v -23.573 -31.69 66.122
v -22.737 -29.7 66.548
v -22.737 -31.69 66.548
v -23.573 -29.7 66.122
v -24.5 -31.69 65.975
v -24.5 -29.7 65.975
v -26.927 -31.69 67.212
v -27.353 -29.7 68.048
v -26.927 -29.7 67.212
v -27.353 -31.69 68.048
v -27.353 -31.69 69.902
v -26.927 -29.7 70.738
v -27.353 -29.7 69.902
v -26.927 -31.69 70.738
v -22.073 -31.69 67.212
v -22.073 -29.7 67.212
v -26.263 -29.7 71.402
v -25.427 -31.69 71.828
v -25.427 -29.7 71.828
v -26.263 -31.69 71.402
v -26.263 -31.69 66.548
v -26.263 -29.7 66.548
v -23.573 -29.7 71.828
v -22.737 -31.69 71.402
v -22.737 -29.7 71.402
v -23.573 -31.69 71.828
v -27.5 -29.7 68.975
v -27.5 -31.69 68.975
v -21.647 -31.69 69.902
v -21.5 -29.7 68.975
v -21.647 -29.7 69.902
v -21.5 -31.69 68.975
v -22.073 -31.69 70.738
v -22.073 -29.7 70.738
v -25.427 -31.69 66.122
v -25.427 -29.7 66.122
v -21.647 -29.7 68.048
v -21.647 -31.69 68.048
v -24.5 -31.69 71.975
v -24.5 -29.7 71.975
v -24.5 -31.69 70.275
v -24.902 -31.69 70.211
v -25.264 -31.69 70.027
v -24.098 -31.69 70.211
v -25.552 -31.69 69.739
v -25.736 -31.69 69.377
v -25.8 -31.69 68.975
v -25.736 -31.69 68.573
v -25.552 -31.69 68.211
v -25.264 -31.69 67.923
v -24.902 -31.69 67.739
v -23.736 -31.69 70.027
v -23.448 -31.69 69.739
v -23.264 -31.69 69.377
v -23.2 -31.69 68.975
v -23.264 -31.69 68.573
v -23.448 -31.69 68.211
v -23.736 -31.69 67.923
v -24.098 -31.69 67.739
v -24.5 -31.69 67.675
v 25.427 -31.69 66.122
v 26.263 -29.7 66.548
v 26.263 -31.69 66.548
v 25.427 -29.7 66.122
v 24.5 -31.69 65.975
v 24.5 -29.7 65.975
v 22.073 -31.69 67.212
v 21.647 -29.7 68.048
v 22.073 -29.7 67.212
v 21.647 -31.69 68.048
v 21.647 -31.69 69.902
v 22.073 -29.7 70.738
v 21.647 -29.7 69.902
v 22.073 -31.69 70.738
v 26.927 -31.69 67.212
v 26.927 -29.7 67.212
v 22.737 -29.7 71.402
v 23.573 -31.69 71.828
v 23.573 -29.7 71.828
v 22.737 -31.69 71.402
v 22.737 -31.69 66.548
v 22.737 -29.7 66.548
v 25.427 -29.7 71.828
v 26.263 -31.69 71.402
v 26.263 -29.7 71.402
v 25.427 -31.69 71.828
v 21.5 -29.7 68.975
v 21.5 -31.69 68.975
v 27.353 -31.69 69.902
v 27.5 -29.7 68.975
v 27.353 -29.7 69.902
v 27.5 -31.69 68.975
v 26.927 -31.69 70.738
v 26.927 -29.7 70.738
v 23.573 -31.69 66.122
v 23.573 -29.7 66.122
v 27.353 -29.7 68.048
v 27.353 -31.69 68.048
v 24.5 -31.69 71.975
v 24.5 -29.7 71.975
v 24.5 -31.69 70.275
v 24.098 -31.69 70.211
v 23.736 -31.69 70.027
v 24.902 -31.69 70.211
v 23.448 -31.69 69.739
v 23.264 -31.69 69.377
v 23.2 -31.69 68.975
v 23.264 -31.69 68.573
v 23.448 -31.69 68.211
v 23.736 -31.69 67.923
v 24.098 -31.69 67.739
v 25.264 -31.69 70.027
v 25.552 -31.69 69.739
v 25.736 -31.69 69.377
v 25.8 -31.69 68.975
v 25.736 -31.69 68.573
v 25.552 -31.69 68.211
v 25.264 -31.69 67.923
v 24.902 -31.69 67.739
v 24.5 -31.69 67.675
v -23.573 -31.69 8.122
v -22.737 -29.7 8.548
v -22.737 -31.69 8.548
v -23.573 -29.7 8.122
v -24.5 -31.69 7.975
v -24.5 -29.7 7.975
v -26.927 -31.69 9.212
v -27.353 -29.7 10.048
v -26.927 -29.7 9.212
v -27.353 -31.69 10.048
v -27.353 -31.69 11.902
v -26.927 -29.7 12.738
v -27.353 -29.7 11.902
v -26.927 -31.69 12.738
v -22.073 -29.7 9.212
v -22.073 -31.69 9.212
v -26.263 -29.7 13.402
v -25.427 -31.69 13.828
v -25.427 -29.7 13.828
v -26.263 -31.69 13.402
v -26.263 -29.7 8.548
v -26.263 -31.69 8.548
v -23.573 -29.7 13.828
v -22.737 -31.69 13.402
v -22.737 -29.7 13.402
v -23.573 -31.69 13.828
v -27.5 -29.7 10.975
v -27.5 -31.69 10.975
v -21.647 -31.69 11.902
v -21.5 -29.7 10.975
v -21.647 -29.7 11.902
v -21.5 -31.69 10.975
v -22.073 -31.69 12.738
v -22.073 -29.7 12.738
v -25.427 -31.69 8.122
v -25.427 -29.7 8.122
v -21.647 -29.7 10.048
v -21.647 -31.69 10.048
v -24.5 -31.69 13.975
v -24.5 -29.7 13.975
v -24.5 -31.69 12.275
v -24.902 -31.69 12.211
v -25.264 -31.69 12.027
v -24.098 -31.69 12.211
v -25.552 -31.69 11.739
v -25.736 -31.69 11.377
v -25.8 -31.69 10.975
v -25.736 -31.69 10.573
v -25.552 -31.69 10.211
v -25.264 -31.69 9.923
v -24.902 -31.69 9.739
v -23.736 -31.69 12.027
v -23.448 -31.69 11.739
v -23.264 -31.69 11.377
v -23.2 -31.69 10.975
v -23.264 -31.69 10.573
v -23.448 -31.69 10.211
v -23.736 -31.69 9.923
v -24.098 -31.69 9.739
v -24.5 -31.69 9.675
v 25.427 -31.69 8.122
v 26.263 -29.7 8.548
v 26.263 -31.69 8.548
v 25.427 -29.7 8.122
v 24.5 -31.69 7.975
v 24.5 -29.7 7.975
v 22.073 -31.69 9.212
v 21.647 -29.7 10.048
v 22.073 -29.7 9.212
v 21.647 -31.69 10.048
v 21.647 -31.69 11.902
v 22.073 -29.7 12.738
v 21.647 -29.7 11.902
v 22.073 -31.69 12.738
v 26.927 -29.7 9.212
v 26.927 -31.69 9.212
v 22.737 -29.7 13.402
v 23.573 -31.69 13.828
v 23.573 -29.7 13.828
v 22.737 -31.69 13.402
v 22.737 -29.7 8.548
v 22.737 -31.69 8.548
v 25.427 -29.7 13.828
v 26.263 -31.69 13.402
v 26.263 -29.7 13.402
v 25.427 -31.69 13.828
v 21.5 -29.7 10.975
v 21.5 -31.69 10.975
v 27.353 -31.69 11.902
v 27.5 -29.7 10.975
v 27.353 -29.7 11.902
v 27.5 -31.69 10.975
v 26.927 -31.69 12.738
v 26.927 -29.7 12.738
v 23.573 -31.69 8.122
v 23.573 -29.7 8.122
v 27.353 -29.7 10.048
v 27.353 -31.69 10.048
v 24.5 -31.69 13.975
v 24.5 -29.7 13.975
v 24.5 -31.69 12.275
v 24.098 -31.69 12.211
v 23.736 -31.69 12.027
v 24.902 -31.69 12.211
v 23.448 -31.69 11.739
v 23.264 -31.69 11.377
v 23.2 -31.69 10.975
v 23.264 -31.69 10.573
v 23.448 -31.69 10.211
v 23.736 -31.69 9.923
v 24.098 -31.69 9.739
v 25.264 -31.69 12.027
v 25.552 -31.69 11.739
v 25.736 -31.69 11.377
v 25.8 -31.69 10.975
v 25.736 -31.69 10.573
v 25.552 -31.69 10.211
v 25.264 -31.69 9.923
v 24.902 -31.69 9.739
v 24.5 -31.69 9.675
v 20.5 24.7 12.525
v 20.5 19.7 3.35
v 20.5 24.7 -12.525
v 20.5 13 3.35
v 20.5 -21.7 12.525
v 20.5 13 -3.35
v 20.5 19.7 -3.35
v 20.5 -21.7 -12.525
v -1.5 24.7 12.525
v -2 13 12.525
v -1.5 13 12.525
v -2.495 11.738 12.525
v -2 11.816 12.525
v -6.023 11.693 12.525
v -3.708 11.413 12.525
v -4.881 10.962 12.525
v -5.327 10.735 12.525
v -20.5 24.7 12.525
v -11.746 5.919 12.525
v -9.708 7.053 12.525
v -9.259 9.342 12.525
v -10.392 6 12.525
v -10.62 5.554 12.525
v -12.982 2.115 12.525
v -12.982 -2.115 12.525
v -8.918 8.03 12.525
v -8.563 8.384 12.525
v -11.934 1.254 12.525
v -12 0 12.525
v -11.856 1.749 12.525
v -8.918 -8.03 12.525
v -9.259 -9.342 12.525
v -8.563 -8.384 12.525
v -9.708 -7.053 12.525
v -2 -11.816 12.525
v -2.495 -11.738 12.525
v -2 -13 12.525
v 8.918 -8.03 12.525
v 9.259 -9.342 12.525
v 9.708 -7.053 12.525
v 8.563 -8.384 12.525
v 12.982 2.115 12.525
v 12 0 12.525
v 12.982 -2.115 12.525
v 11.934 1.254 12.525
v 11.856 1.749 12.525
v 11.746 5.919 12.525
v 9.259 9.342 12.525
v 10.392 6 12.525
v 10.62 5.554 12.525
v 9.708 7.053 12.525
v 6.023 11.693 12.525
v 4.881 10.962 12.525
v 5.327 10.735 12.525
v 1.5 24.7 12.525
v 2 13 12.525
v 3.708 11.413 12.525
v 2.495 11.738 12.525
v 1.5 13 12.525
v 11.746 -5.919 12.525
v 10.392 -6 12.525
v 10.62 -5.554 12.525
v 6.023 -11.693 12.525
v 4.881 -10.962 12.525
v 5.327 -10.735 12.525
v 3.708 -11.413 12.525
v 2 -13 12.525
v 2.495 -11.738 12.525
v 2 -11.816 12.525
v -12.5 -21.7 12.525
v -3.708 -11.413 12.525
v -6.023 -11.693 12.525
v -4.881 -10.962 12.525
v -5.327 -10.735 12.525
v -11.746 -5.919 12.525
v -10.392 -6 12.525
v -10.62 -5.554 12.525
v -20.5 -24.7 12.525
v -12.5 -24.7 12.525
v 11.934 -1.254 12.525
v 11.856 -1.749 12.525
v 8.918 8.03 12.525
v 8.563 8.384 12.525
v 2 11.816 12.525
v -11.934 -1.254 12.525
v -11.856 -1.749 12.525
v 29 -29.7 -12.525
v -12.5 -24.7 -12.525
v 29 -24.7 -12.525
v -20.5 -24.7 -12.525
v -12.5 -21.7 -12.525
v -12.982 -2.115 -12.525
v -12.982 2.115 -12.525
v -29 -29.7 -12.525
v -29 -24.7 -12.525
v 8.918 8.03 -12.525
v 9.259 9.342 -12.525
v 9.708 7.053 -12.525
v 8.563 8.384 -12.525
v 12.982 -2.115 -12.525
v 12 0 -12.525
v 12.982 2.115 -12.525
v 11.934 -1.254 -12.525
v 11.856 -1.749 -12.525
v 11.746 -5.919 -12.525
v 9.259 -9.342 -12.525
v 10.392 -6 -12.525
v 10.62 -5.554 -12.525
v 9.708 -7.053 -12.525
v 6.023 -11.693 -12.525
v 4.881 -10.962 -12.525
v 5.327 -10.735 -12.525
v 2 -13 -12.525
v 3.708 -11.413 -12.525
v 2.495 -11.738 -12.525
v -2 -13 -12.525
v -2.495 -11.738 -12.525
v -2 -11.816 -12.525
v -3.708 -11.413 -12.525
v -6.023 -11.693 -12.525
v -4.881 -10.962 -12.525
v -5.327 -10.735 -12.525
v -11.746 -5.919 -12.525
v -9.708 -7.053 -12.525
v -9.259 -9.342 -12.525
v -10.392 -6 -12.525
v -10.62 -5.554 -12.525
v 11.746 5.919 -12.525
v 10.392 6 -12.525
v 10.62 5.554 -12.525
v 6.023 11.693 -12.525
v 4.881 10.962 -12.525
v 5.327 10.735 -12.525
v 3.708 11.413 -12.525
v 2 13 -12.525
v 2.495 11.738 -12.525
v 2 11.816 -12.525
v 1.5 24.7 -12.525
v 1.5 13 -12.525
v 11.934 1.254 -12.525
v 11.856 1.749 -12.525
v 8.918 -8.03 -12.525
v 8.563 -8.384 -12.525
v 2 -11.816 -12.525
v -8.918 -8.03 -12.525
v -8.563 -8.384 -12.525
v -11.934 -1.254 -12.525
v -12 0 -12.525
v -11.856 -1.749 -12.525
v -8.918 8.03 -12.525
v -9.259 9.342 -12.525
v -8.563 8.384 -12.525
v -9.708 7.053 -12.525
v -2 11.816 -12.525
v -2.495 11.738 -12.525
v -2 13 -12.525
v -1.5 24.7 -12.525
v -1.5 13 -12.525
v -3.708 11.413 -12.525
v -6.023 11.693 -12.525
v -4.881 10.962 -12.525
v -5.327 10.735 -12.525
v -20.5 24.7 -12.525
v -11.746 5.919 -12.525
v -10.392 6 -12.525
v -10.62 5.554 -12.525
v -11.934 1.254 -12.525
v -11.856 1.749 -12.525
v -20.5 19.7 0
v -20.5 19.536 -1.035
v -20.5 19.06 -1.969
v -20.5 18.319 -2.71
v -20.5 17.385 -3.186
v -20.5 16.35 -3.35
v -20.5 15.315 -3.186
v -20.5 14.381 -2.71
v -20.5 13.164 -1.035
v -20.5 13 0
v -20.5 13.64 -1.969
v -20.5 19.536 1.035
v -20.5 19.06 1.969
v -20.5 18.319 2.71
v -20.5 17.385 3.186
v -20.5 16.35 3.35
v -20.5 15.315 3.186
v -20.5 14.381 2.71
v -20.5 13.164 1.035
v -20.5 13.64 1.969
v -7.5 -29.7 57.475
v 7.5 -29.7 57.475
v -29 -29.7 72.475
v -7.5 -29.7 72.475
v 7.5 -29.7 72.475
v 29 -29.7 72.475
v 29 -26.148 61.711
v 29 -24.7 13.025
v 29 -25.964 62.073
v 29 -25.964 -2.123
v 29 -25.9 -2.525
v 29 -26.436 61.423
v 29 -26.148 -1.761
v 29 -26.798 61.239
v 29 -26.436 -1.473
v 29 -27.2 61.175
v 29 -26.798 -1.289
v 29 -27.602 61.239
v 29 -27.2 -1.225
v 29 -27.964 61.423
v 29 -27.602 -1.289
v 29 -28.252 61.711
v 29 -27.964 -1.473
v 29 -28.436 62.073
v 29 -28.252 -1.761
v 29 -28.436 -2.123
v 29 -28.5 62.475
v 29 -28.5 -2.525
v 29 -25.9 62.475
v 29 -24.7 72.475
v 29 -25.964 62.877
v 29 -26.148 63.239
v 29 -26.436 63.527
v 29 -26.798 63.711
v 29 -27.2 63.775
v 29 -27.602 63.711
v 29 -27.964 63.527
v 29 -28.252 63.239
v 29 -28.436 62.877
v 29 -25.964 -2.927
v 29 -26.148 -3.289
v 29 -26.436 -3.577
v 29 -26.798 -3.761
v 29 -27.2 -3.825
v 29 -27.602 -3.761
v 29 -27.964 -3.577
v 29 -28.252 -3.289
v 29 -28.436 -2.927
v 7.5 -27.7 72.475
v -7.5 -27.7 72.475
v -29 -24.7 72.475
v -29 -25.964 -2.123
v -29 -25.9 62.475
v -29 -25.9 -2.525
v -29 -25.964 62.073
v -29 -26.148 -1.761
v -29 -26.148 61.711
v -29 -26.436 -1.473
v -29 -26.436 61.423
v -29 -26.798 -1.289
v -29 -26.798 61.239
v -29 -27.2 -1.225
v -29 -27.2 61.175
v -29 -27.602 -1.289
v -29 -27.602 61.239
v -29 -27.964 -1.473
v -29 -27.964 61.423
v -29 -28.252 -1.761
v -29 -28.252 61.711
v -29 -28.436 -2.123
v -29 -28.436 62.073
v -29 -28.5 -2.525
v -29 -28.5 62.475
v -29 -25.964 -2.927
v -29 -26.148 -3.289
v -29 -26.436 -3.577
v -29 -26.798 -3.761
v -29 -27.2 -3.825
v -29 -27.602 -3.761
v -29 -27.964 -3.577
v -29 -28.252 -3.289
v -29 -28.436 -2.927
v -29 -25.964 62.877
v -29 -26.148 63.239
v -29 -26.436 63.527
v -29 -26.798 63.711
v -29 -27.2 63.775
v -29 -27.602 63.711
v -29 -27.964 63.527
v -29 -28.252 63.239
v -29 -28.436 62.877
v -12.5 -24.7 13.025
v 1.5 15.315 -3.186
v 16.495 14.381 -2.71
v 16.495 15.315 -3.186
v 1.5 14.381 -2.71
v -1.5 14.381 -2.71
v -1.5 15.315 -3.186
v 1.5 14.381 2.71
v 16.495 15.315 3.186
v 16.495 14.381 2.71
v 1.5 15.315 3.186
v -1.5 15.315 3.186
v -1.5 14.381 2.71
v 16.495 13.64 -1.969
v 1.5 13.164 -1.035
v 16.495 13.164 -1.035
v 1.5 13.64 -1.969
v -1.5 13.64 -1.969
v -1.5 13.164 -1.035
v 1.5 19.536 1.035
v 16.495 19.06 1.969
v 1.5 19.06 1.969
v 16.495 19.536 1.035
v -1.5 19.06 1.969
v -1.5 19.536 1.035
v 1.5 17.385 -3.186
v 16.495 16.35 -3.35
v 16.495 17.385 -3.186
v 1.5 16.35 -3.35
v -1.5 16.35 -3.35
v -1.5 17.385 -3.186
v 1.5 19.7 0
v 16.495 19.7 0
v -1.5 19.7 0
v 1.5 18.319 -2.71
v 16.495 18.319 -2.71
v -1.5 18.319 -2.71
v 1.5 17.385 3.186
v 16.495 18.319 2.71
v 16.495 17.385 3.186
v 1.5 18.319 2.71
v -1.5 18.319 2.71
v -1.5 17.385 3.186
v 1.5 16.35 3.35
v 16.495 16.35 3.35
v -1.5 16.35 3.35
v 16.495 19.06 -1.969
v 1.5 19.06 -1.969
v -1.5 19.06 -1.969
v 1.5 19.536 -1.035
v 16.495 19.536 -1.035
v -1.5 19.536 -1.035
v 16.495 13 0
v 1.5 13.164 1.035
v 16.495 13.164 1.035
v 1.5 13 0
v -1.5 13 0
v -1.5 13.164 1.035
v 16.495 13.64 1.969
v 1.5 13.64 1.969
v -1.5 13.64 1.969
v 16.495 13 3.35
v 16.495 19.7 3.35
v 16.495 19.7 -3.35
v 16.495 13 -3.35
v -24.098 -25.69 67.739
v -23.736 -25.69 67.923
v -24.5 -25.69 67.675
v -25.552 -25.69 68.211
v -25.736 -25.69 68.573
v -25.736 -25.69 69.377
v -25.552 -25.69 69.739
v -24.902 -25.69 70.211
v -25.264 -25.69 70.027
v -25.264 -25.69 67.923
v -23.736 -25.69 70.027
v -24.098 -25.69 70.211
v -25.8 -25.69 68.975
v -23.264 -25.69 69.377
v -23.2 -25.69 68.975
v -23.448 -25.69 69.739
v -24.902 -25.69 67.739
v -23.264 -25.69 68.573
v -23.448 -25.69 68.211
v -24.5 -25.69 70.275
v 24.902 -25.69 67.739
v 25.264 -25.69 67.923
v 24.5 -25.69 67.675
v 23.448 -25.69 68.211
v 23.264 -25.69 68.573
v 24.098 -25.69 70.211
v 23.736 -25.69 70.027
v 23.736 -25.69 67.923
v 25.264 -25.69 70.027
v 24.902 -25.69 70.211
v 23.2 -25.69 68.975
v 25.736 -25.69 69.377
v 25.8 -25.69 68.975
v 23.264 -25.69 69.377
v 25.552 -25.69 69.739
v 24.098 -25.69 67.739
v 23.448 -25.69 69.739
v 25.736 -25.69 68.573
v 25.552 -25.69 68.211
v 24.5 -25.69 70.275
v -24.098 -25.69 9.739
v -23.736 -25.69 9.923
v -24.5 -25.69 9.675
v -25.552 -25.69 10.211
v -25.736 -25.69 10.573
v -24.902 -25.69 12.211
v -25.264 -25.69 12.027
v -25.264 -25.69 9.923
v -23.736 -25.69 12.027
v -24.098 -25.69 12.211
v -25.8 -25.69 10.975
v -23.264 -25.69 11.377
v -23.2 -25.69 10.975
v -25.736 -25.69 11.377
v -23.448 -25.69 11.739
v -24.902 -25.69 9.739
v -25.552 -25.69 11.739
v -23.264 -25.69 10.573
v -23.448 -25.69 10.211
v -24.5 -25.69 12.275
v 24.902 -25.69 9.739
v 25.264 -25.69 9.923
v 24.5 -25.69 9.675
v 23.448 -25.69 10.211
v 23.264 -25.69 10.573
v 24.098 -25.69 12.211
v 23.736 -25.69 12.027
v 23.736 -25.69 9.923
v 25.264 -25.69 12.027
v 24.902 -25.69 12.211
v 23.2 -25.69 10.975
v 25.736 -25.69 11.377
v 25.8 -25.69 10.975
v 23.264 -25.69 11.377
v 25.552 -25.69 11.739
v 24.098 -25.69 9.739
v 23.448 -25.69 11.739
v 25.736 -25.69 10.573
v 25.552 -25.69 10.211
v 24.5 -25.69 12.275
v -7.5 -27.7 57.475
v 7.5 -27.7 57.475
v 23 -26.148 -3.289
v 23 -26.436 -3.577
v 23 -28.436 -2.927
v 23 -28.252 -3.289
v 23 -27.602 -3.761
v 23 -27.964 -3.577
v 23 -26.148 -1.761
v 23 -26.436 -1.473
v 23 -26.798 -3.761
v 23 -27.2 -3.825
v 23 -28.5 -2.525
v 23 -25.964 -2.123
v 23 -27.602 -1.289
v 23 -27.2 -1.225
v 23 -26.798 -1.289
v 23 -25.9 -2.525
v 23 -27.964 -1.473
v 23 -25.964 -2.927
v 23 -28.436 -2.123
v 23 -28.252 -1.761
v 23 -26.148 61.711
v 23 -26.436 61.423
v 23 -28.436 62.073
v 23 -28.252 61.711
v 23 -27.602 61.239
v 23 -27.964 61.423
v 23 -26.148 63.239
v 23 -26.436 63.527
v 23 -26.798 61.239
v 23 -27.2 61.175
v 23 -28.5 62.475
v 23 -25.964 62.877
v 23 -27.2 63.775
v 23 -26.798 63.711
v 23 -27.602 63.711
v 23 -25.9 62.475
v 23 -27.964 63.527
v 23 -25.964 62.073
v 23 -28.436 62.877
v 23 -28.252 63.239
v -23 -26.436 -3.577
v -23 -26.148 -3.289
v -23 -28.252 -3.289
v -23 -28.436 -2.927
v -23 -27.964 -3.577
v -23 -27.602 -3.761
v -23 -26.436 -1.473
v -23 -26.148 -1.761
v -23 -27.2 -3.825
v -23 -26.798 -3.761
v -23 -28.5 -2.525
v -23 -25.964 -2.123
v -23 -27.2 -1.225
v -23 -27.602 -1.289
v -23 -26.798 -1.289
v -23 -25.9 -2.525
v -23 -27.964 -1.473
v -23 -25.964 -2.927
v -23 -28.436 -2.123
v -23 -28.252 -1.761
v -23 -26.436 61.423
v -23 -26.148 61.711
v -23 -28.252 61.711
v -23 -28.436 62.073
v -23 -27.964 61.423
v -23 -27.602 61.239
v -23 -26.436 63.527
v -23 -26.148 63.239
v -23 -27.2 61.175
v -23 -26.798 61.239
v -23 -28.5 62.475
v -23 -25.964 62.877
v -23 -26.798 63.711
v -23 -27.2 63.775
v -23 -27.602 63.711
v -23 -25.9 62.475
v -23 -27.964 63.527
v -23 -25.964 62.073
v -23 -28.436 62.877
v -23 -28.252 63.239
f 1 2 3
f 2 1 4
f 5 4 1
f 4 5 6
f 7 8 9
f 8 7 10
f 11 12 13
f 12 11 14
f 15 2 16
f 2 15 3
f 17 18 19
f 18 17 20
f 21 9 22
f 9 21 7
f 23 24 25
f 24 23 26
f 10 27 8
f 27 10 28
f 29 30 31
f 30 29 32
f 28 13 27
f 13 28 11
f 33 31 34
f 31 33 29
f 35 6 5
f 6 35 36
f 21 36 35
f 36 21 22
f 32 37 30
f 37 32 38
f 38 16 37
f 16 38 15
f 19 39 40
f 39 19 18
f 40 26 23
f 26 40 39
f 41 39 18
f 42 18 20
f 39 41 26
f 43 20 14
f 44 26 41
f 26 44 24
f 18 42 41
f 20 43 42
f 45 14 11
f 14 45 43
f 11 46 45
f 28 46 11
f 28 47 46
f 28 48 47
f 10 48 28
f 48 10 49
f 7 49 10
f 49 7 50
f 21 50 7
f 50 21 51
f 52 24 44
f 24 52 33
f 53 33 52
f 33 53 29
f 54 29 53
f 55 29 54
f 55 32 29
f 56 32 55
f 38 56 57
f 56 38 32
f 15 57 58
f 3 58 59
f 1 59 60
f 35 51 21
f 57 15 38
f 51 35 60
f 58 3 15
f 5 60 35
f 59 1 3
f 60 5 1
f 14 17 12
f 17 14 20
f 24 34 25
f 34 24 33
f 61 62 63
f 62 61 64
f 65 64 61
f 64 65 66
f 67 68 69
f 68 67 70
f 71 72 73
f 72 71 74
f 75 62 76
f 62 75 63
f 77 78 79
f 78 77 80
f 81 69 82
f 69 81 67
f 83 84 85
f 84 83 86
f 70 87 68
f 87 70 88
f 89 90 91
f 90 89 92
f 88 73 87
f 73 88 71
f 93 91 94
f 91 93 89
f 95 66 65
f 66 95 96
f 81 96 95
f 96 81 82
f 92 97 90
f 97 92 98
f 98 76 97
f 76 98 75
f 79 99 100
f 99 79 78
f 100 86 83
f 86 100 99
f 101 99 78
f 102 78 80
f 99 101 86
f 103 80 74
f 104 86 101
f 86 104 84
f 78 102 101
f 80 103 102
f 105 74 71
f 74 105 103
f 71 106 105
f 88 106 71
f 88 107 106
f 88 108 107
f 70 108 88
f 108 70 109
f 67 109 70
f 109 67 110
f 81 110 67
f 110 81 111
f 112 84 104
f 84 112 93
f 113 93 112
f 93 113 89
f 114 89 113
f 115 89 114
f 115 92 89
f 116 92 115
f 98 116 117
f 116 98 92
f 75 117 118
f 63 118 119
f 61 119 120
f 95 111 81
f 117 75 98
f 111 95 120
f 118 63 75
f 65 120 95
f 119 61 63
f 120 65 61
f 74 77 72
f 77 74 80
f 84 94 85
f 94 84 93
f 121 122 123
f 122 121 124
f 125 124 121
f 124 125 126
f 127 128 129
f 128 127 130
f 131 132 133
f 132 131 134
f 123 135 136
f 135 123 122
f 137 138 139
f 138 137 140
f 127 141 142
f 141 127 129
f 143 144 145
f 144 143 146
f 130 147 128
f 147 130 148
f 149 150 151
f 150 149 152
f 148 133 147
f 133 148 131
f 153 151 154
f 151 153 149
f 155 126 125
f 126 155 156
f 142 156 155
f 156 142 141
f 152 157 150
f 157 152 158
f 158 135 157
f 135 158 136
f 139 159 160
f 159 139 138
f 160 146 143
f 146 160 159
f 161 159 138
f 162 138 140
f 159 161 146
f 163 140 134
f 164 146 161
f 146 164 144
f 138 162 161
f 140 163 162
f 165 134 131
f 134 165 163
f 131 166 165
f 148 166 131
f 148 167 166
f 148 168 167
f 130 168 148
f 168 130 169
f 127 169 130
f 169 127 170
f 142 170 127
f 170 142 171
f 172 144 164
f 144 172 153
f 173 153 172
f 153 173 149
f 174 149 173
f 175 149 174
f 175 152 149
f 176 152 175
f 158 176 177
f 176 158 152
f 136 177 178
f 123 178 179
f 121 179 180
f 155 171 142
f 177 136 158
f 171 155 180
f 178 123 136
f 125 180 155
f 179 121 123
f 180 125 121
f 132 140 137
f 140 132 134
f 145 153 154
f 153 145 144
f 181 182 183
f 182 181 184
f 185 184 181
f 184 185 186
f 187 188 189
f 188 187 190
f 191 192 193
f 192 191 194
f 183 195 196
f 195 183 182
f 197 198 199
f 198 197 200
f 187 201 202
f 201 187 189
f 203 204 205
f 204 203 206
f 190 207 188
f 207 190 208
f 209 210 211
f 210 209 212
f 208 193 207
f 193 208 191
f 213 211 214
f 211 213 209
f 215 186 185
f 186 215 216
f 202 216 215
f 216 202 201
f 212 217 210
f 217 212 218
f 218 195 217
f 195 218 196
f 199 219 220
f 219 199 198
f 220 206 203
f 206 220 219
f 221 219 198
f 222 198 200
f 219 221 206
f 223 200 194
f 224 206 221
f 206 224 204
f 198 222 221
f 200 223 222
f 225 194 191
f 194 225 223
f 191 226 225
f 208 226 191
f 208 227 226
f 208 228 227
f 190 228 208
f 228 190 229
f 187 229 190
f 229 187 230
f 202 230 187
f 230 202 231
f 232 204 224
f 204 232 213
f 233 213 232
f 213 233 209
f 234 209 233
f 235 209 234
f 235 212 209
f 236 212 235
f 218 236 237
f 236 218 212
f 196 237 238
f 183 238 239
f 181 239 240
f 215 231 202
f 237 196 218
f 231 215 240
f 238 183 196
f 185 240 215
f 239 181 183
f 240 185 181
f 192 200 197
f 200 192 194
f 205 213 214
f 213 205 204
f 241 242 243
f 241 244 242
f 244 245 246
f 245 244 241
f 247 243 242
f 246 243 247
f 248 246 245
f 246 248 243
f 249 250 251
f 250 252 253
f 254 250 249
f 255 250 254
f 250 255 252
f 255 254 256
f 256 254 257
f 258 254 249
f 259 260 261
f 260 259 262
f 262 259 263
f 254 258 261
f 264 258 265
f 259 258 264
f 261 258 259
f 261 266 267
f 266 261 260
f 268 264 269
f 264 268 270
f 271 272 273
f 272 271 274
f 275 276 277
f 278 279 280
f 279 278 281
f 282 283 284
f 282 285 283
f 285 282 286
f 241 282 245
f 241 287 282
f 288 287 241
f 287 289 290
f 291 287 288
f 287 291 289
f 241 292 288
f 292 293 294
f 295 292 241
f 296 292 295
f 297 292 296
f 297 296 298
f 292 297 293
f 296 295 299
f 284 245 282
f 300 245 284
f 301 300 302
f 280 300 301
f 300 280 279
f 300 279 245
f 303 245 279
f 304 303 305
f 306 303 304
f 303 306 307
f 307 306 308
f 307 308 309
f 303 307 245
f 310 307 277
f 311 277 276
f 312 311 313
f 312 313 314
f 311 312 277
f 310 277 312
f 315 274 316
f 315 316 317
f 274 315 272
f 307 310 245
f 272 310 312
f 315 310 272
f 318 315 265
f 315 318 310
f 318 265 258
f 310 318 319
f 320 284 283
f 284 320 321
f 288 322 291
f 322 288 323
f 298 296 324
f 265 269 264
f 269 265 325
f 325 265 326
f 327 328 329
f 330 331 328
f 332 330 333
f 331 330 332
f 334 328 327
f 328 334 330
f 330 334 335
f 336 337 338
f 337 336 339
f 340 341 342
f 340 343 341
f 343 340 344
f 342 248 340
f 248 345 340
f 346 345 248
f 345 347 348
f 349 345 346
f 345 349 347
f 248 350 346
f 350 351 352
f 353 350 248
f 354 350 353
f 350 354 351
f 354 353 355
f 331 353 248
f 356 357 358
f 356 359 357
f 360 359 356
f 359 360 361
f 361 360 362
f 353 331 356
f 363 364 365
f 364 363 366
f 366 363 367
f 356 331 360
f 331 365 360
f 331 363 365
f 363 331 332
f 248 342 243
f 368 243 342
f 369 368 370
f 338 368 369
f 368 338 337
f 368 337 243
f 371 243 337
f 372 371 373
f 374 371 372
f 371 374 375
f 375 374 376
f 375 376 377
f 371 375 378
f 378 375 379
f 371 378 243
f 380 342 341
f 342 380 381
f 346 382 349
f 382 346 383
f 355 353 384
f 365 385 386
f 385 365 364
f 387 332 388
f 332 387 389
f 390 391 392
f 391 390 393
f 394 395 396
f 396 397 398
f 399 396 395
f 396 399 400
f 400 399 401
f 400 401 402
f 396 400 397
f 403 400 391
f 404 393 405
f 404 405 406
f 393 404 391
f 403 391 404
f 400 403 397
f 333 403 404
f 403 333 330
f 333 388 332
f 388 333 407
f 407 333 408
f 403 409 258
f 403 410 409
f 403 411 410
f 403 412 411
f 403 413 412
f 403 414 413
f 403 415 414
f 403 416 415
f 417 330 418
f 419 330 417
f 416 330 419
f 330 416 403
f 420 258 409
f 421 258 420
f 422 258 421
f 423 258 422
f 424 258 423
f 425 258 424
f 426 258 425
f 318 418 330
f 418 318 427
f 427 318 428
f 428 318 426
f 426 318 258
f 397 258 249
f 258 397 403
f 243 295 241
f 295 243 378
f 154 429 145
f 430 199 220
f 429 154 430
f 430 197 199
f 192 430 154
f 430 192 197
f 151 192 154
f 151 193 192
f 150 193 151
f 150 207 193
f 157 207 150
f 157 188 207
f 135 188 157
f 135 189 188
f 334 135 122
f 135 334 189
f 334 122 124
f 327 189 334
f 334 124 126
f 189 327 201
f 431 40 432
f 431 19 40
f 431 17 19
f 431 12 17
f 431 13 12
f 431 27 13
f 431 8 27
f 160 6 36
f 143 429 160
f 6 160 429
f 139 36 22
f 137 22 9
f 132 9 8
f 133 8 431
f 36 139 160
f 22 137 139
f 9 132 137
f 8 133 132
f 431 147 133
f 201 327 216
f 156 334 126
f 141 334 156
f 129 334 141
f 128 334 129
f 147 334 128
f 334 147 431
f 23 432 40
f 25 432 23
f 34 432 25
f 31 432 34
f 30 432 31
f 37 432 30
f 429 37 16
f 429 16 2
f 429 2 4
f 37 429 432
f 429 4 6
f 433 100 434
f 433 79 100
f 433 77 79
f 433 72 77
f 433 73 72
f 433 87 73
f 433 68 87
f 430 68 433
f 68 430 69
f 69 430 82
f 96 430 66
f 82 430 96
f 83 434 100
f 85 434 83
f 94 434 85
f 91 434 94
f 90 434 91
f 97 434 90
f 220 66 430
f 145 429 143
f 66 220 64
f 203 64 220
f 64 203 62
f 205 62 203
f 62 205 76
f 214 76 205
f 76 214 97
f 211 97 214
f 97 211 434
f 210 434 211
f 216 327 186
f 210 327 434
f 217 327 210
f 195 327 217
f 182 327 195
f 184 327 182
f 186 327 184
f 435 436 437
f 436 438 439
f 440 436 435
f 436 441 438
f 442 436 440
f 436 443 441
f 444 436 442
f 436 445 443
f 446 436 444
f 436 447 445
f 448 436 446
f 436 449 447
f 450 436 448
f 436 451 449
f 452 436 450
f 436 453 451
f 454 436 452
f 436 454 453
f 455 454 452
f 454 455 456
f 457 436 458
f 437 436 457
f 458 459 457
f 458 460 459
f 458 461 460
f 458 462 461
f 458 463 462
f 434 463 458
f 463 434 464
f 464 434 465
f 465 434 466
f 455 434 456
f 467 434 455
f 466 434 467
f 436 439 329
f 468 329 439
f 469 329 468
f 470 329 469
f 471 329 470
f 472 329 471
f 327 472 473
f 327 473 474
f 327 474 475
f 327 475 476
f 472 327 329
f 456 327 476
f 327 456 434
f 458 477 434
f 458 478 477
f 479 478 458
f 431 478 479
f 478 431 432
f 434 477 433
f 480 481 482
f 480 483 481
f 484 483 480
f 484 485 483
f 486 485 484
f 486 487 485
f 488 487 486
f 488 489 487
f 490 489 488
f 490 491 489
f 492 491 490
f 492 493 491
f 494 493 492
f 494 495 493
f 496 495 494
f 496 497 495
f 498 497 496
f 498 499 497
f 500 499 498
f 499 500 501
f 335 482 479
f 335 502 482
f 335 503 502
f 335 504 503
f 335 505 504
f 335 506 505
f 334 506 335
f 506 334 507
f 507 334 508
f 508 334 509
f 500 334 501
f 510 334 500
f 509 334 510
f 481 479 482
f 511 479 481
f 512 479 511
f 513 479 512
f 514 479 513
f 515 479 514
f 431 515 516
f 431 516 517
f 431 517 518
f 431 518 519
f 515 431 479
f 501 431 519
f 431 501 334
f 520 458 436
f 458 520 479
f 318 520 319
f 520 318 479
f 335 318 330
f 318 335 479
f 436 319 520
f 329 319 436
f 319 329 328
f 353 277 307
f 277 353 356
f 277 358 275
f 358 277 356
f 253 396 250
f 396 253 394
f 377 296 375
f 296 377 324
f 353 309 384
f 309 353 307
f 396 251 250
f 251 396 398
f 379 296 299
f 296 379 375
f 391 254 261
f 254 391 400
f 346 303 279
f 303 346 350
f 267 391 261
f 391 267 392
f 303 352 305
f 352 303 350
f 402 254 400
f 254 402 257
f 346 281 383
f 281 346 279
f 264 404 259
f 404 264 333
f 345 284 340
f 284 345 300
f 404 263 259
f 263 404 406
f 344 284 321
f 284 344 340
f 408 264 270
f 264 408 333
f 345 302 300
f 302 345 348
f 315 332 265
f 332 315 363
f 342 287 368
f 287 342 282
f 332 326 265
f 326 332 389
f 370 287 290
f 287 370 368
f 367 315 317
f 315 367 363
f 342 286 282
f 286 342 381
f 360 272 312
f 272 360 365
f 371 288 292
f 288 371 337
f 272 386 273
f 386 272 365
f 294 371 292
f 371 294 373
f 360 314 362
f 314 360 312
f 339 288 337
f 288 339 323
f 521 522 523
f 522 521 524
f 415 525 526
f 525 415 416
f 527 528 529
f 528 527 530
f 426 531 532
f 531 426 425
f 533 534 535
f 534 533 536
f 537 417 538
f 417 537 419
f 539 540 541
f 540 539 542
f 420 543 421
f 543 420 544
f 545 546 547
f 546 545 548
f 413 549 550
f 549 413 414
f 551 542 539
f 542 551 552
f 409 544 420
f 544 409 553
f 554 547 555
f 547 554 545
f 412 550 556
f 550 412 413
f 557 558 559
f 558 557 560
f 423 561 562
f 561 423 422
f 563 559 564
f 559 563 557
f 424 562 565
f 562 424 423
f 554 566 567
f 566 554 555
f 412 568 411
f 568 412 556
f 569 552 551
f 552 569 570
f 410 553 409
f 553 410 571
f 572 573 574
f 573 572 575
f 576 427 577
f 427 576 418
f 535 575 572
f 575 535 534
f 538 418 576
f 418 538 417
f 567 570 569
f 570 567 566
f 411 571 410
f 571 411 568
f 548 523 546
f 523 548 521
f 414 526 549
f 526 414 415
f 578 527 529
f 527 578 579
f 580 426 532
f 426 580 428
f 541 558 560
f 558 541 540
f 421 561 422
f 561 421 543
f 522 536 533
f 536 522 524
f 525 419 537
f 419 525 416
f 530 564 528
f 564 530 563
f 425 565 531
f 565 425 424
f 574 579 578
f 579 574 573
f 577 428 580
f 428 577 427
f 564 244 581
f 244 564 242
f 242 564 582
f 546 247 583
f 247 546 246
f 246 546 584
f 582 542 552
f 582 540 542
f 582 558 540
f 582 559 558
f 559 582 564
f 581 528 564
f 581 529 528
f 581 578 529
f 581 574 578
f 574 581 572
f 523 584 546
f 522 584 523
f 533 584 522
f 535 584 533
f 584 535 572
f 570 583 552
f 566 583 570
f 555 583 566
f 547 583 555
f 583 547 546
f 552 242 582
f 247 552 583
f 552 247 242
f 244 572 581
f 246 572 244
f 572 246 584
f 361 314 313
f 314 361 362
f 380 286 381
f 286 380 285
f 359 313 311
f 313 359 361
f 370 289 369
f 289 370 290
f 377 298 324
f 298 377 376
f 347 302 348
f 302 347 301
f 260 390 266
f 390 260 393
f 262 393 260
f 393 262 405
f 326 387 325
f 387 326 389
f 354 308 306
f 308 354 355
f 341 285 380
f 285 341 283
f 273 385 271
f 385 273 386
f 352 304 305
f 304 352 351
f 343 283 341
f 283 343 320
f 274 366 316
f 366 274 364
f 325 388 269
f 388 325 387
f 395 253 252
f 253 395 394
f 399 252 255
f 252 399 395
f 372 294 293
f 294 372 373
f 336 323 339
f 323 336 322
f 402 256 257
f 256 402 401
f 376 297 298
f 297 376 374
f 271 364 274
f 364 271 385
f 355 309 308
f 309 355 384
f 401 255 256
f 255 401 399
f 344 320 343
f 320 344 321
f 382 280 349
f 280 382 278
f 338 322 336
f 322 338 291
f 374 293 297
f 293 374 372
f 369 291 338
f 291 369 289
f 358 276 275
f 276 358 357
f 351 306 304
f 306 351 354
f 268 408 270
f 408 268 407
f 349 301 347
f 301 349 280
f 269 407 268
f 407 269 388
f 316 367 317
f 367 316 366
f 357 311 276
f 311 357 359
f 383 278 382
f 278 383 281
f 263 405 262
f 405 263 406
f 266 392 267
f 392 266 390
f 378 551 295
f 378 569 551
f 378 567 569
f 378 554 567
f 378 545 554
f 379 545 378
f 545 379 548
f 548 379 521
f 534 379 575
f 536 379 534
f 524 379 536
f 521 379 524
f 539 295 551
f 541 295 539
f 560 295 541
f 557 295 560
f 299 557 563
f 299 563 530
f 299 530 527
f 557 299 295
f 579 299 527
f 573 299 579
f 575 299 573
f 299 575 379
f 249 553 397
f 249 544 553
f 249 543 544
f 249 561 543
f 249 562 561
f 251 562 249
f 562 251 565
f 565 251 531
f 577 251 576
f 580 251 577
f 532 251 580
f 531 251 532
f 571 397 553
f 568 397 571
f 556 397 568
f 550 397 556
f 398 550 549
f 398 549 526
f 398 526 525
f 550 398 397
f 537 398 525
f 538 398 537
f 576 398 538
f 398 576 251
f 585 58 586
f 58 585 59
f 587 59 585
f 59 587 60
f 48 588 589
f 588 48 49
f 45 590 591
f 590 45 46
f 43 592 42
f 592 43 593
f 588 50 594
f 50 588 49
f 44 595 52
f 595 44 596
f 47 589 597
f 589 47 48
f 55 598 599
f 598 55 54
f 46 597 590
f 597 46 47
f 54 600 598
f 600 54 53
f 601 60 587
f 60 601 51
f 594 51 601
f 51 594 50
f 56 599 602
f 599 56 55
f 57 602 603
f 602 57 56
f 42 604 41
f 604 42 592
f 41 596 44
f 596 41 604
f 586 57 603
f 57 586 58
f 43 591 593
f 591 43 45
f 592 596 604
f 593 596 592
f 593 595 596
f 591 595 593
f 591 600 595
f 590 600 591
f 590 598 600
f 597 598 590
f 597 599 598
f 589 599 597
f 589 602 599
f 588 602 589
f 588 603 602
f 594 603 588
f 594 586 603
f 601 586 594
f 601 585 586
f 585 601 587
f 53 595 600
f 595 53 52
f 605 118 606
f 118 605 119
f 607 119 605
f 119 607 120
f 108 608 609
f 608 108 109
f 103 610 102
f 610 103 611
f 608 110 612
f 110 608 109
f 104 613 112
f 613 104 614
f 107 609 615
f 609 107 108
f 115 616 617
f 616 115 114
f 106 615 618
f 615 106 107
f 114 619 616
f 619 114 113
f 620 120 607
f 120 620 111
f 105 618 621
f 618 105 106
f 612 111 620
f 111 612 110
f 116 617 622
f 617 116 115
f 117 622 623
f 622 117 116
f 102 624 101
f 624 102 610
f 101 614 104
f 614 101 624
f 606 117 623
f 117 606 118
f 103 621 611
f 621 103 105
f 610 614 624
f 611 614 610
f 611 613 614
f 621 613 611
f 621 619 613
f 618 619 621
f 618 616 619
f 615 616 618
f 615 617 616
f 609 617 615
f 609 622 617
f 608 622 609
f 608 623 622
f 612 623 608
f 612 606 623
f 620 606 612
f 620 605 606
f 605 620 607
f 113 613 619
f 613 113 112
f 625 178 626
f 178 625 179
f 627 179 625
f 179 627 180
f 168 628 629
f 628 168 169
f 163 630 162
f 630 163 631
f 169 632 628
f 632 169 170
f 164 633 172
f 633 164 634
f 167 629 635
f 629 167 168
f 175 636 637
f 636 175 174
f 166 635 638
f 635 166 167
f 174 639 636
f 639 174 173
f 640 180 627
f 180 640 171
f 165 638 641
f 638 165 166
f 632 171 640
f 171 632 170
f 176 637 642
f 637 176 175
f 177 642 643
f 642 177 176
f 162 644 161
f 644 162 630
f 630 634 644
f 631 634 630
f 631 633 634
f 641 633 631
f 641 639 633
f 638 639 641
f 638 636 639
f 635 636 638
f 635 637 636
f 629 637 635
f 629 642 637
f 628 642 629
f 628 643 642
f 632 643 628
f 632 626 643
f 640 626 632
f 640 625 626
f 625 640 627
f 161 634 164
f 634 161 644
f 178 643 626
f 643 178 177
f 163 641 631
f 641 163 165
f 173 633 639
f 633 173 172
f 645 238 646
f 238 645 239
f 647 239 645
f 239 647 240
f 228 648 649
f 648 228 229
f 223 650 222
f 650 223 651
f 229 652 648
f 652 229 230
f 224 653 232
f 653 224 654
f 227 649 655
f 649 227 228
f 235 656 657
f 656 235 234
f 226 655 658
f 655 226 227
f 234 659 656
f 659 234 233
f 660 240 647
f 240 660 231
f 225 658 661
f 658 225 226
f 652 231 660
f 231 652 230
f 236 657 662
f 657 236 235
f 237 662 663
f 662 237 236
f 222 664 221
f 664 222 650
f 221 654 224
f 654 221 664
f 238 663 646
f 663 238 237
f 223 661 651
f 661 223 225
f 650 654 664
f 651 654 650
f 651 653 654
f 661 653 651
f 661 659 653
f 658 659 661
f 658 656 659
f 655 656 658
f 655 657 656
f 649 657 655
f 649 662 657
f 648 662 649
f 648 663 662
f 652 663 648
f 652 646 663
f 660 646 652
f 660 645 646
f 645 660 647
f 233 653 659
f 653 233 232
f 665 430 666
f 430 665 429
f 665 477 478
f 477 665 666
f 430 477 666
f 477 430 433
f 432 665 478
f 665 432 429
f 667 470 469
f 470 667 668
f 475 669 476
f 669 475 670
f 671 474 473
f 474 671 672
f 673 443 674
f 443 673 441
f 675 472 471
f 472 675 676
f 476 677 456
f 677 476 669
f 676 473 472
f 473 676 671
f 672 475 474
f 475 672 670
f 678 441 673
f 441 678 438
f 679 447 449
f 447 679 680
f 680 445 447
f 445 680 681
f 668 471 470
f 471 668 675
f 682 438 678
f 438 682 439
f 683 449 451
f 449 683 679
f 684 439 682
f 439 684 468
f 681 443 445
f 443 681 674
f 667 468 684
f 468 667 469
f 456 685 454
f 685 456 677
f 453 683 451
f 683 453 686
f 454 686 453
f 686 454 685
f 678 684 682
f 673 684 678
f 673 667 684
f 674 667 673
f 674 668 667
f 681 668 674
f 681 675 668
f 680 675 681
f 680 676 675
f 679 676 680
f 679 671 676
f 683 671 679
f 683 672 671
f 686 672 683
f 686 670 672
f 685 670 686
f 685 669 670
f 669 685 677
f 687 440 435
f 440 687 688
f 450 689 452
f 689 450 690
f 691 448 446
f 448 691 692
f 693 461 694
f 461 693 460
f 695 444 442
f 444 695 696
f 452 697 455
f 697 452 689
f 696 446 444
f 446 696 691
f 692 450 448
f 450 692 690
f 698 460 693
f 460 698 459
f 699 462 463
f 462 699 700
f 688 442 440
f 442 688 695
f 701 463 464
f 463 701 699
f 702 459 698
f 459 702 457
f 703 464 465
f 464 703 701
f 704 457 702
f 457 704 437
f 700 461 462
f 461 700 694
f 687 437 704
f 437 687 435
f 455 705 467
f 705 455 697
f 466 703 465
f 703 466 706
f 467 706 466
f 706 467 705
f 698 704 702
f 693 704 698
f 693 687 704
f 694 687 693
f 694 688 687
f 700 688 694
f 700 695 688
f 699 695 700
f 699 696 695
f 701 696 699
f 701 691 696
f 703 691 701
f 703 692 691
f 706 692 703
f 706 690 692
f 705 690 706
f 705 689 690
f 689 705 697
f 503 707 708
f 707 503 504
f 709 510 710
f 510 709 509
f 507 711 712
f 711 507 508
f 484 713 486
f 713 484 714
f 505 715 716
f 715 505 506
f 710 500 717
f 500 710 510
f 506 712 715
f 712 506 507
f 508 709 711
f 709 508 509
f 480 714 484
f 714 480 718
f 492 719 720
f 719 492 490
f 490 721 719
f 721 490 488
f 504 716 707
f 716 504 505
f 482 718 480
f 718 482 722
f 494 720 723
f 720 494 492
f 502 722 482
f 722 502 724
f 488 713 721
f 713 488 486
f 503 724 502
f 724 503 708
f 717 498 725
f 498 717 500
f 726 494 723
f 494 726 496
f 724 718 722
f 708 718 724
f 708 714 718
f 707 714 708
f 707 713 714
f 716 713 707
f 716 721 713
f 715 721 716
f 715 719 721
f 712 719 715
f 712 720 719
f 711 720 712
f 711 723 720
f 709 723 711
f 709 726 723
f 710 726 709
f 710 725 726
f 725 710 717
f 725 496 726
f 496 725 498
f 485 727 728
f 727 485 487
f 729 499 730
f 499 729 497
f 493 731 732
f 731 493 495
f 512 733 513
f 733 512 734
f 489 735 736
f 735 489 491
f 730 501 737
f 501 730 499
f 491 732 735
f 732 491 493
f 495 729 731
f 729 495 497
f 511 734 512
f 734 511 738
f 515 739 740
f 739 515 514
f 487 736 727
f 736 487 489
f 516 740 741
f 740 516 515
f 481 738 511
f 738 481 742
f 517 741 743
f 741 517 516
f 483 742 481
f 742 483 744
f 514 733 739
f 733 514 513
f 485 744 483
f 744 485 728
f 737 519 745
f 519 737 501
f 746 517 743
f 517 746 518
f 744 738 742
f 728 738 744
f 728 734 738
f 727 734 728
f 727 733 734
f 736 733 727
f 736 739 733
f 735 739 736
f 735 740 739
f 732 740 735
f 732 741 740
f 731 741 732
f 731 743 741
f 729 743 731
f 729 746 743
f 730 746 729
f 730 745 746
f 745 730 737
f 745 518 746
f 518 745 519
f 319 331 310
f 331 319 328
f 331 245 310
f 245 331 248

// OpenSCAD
// file: lib/boltDim.scad
/*
    Mounting Blocks to build a camera boom.

    Copyright (C) 2021 John Winans

    This program is free software: you can redistribute it and/or modify
    it under the terms of the GNU General Public License as published by
    the Free Software Foundation, either version 3 of the License, or
    (at your option) any later version.

    This program is distributed in the hope that it will be useful,
    but WITHOUT ANY WARRANTY; without even the implied warranty of
    MERCHANTABILITY or FITNESS FOR A PARTICULAR PURPOSE.  See the
    GNU General Public License for more details.

    You should have received a copy of the GNU General Public License
    along with this program.  If not, see <https://www.gnu.org/licenses/>.
*/

bolt_dim_M2_dia = 3;		// for M2 bolt loose fit
bolt_dim_M2_tap = 2.4;		// for self-tapping a M2 bolt
bolt_dim_M2_head_dia = 4.6;// diameter for a crown countersink

bolt_dim_M25_dia = 3.5;		// for M2.5 bolt loose fit
bolt_dim_M25_tap = 2.6;		// for self-tapping a M2.5 bolt
bolt_dim_M25_head_dia = 6;	// diameter for a crown countersink

bolt_dim_M3_dia = 3.6;		// M3 bolt loose fit
bolt_dim_M3_tap = 3.1;		// for self-tapping M3 bolt
bolt_dim_M3_head_dia = 6.5;	// diameter for a crown countersink

bolt_dim_M5_dia = 5.4;		// for M5 bolt loose fit
bolt_dim_M5_tap = 5;		// for self-tapping a M5 bolt
bolt_dim_M5_head_dia = 9;	// diameter for a crown countersink

nut_dim_M5_DIN985 = 9.6;	// diameter for a hex hole to retain am M5 myloc


bolt_dim_quarter_dia = 6.7;	// for 1/4" bolt loose fit
bolt_dim_quarter_carriage_neck_depth = 4;	// neck length
// file: lib/pimount.scad
/*
    Mounting Blocks to build a camera boom.

    Copyright (C) 2021 John Winans

    This program is free software: you can redistribute it and/or modify
    it under the terms of the GNU General Public License as published by
    the Free Software Foundation, either version 3 of the License, or
    (at your option) any later version.

    This program is distributed in the hope that it will be useful,
    but WITHOUT ANY WARRANTY; without even the implied warranty of
    MERCHANTABILITY or FITNESS FOR A PARTICULAR PURPOSE.  See the
    GNU General Public License for more details.

    You should have received a copy of the GNU General Public License
    along with this program.  If not, see <https://www.gnu.org/licenses/>.
*/


include <boltDim.scad>

//pi3_example();

piDefaultStandoffHeight=5;

piDimX=85;
piDimY=56;
piDimCornerRad=3;


// 49x58 square on center
piHoleCenters=[
	[ 3.5, 3.5, 0 ],
	[ 3.5, 3.5+49, 0 ],
	[ 3.5+58, 3.5, 0 ],
	[ 3.5+58, 3.5+49, 0 ]
];


v1_hole_centers=[
	[ -24/2+2, 25/2-2, 0 ],
	[ -24/2+2, -25/2+2, 0 ],
	[ -24/2+2+12.5, 25/2-2, 0 ],
	[ -24/2+2+12.5, -25/2+2, 0 ],
];


hq_hole_centers=[
	[ -38/2+4, 38/2-4, 0 ],
	[ -38/2+4, -38/2+4, 0 ],
	[ 38/2-4, 38/2-4, 0 ],
	[ 38/2-4, -38/2+4, 0 ],
];


/**
* The material to add in order to mount a Raspberry PI3. 
* For example, things like standoffs.
******************************************************************/
module pi3_pos(standoffHeight=piDefaultStandoffHeight, reference=true)
{
    translate([0, 0, -(standoffHeight+.01)])
        for ( pos = piHoleCenters )
            translate(pos) cylinder(d=6, h=standoffHeight, $fn=20);
  
    if(reference)  
    {
        // reference PCB shape (shown but not part of the object)
        %translate([piDimCornerRad, piDimCornerRad, 0]) minkowski()
        {
            cube([piDimX-2*piDimCornerRad, piDimY-2*piDimCornerRad, 1.4-.02]);
            cylinder(r=piDimCornerRad, h=.01);
        }
    }
}


/**
******************************************************************/
module pi_camera_v1_neg(
	standoffHeight=piDefaultStandoffHeight, 
	mountHoleDepth=9, 
	threadin=true)
{
	boltd=threadin ? bolt_dim_M2_tap : bolt_dim_M2_dia;
	for (pos = v1_hole_centers)
		translate(pos) translate([0,0,standoffHeight-mountHoleDepth]) cylinder(d=boltd, h=mountHoleDepth+.01, $fn=20);
}

/**
******************************************************************/
module pi_camera_v1_pos(
    standoffHeight=piDefaultStandoffHeight)
{
	for (pos = v1_hole_centers)
		translate(pos) 
			cylinder(d=3.5, h=standoffHeight, $fn=30);
}

/**
******************************************************************/
module pi_camera_hq_neg(
	standoffHeight=piDefaultStandoffHeight, 
	mountHoleDepth=9, 
	threadin=true)
{
	boltd=threadin ? bolt_dim_M25_tap : bolt_dim_M25_dia;
	for (pos = hq_hole_centers)
		translate(pos) translate([0,0,standoffHeight-mountHoleDepth]) cylinder(d=boltd, h=mountHoleDepth+.01, $fn=20);
}

/**
******************************************************************/
module pi_camera_hq_pos(
    standoffHeight=piDefaultStandoffHeight)
{
	for (pos = hq_hole_centers)
		translate(pos) 
			translate([0,0,standoffHeight/2]) cylinder(d=5.5, h=standoffHeight, center=true, $fn=30);
}


/**
* The material to subtract to mount a Raspberry PI3.
* For example, things like the bolt holes within standoffs,
* conectors,...
*
* @param threadin True=make standoff holes to thread 2.5mm 
*   into the material itself, False=proivide space for bolt & 
*   countersink the head
******************************************************************/
module pi3_neg(standoffHeight=piDefaultStandoffHeight, mountHoleDepth=4.5, threadin=true)
{
    boltd=threadin ? bolt_dim_M25_tap : bolt_dim_M25_dia;
    
    // hollow out the standoffs
    translate([0, 0, -mountHoleDepth-.01])
        for (pos = piHoleCenters)
        {
            translate(pos) cylinder(d=boltd, h=mountHoleDepth+.02, $fn=20); // bolt
            if (!threadin)
                translate(pos) cylinder(d=5, h=7, $fn=20); // countersink
        }
        
    // The Ethernet
    translate([85, 11, 1.4+14.5/2]) cube([20, 17, 14.5], center=true);

    // The USB ports
    translate([85, 29, 1.4+16.5/2]) cube([20, 16, 16.5], center=true);
    translate([85, 47, 1.4+16.5/2]) cube([20, 16, 16.5], center=true);

	//15x6 on center
    // an access slot for the SD card
    translate([0, 28,-1]) cube([30, 15, 6], center=true);
}






// a test module to demonstrate how to use this
module pi3_example()
{
    difference()
    {
        pi3_pos();		// the mounting material
        pi3_neg();		// ...less the holes for bolts, connectors etc
    }
}
// file: lib/clamp.scad
/*
	Mounting Blocks to build a camera boom.

    Copyright (C) 2021 John Winans

    This program is free software: you can redistribute it and/or modify
    it under the terms of the GNU General Public License as published by
    the Free Software Foundation, either version 3 of the License, or
    (at your option) any later version.

    This program is distributed in the hope that it will be useful,
    but WITHOUT ANY WARRANTY; without even the implied warranty of
    MERCHANTABILITY or FITNESS FOR A PARTICULAR PURPOSE.  See the
    GNU General Public License for more details.

    You should have received a copy of the GNU General Public License
    along with this program.  If not, see <https://www.gnu.org/licenses/>.
*/

include <boltDim.scad>


//********************************************************
// A pipe & bolt holes for a pipe clamp.
//********************************************************
module clamp_neg(
    relief_slot,        // how far from the edge of the pipe should the relief slot go?
    pipe_length, 
    pipe_diameter,
    clamp_bolt_length,    // used to determine the length of the clamp bolt
    clamp_bolt_dia,
    clamp_bolt_neck_depth,
    clamp_bolt_clearance,
    rib=false, 
    stripe=true
    )
{
    clamp_bolt_offset = pipe_diameter/2+clamp_bolt_dia/2+clamp_bolt_clearance;

    cz = pipe_length+.01;
    
    // the pipe hole
    cylinder(d=pipe_diameter, h=cz+.01, center=true, $fn=60);
    
    if (rib)
    {
        // rib it
        rh=2;
        rs=4;
        for (z=[-cz/2+rh*.5+1 : rs : cz/2]) // XXX fudge start to center it
            translate([0,0,z])
                cylinder(d=pipe_diameter+1, h=rh, center=true, $fn=60);
    }
    
    if (stripe)
    {
        // stripe it
        //rh=1.5;
        rh=4;
        rt=360/10;
        for (theta=[90:rt:2690])
            rotate([0,0,theta]) cube([pipe_diameter+2, rh, cz+.01], center=true);
    }
    
    // releif notch
    translate([0,pipe_diameter/2+relief_slot/2,0]) cube([3, relief_slot+.01, cz+.01], center=true);
    
    // clamp bolt
    translate([0,clamp_bolt_offset,0])
    {
        rotate([0,90,0]) 
        cylinder(d=clamp_bolt_dia, h=clamp_bolt_length+.01, $fn=20, center=true);
    
        // square for carriage bolt head
        translate([clamp_bolt_length/2-clamp_bolt_neck_depth/2,0,0])
            cube([clamp_bolt_neck_depth+.01, clamp_bolt_dia,clamp_bolt_dia], center=true);
    }
}
// main file
/*
    Mounting Blocks to build a camera boom.

    Copyright (C) 2021 John Winans

    This program is free software: you can redistribute it and/or modify
    it under the terms of the GNU General Public License as published by
    the Free Software Foundation, either version 3 of the License, or
    (at your option) any later version.

    This program is distributed in the hope that it will be useful,
    but WITHOUT ANY WARRANTY; without even the implied warranty of
    MERCHANTABILITY or FITNESS FOR A PARTICULAR PURPOSE.  See the
    GNU General Public License for more details.

    You should have received a copy of the GNU General Public License
    along with this program.  If not, see <https://www.gnu.org/licenses/>.
*/

include <lib/clamp.scad>
include <lib/pimount.scad>


//********************************************************
// The size of the hole for the pipe(s)
pipe_diameter=24;       // 3/4" conduit


block_c_bolt_pipe_clearance=1;
block_c_bolt_inset=5;       // from clamp-bolt to the end of the block

block_inset=17;





// calculate the dimensions of the block using the above config variables

cx = pipe_diameter+block_inset;   

cbd=bolt_dim_quarter_dia;       // clamp bolt diameter
//cz=cx;                        // this is prety thick
//cz=cbd+block_c_bolt_inset*2;    // this is as thin as I'd want to go
cz=1.5*(cbd+block_c_bolt_inset*2);

cbl=cx;                         // length of the clamp bolt bore
cbnd=bolt_dim_quarter_carriage_neck_depth;

cbc=1;
rs=cbd+block_c_bolt_inset+cbc;       // relief slot width

cam_offset=5;  // how far to stick out the 'back'

cy = pipe_diameter+rs*2+cam_offset;



pi_block();


module cn()
{
    clamp_neg(
        clamp_bolt_length=cbl,
        clamp_bolt_dia=cbd,
        clamp_bolt_neck_depth=cbnd,
        relief_slot=rs,
        pipe_length=cz,
        pipe_diameter=pipe_diameter,
        clamp_bolt_clearance=cbc);
}



/**
* A mounting bracket for a RPI 
**********************************************************************************/
module pibasePos(thick, standoff=2)
{
    rotate([90,90,0])
    translate([-piDimX/2,-piDimY/2,standoff])
    pi3_pos(standoff);
}


module pibaseNeg(thick, standoff=2)
{
    rotate([90,90,0])
    translate([-piDimX/2,-piDimY/2,standoff])
    pi3_neg(mountHoleDepth=6);
}


/**
* A mounting bracket for a RPI 
**********************************************************************************/
module pi_block()
{
    piPlateX=piDimY+2;
    piPlateY=cam_offset;
    piPlateZ=piDimX;           // do NOT expand (for clean printer bed)
    
    difference()
    {
        union()
        {
            translate([0,-cam_offset/2,0]) cube([cx,cy,cz], center=true);
            translate([0,-cy/2-cam_offset/2,piDimX/2-cz/2]) pibasePos(11);
            translate([0,-cy/2-cam_offset/2+cam_offset/2,piDimX/2-cz/2]) cube([piPlateX,piPlateY,piPlateZ], center=true);
        }
        cn();
        translate([0,-cy/2-cam_offset/2,piDimX/2-cz/2]) pibaseNeg(11);

        strain_offset=block_inset/2;
        strain_thickness=3;
        // strain relief
        translate([strain_offset,-cy/2+cam_offset/2+strain_thickness/2,0]) cube([cx+1,3, cz+1], center=true);
        
        // side bolt-holes for mounting a cover
        for (x = [ piPlateX/2, -piPlateX/2 ] )
            for (z = [ 10, piPlateZ-10 ] )
                translate([x,-cy/2, -cz/2+z]) rotate([0,90,0]) cylinder(d=bolt_dim_M25_tap, h=6*2, $fn=20, center=true);
    }

}
